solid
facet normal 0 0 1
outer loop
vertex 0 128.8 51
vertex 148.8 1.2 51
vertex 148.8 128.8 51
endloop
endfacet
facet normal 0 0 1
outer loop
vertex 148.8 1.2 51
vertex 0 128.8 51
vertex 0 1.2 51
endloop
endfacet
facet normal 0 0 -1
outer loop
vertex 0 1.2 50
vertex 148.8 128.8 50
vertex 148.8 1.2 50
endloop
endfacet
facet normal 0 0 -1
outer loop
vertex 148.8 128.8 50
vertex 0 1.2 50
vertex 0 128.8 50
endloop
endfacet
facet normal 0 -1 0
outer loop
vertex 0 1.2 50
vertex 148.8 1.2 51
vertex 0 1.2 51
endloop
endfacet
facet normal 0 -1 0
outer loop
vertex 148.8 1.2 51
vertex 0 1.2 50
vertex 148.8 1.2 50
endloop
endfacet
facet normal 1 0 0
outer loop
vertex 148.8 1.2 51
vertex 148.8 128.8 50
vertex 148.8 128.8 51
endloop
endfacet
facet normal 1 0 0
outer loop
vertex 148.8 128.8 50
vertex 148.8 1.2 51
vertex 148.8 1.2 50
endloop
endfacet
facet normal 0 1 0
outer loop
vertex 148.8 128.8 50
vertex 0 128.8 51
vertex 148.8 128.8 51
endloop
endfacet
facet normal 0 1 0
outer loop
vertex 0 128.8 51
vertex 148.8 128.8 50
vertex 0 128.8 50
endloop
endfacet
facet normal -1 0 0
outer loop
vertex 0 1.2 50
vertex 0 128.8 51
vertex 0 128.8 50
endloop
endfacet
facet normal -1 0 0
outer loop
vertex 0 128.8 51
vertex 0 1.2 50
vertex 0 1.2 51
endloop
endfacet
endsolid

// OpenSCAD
module hollow(size=[10,10,10],thickness = 1){
    
   difference(){
cube([size[0],size[1],size[2]]);
    translate([thickness,thickness,thickness])
cube([size[0]-thickness * 2,size[1]-thickness * 2,size[2]]);
} 
    
}

module box(){
difference(){
hollow(size= [200-50,130,50],thickness = 1.2);

translate([-2,1.2,48.8-2])
cube([50,127.6,4]);}

translate([-0,1.2,48.8-2.4])
difference(){
cube([150,127.6,1.2]);
    translate([1.2,1.2,0])
    cube([150 - 2.4,127.6-2.4,1.2]);
    
    }
    
    
translate([-0,1.2,48.8-2.4+2.4])
difference(){
cube([150,127.6,1.2]);
    translate([1.2,1.2,0])
    cube([150 - 2.4,127.6-2.4,1.2]);
    translate([0,1.2,0])
    cube([10 - 2.4,127.6-2.4,1.2]);
    }
    
};
    translate([0,1.2,50])
cube([150-1.2,130-2.4,1]);  //LID
